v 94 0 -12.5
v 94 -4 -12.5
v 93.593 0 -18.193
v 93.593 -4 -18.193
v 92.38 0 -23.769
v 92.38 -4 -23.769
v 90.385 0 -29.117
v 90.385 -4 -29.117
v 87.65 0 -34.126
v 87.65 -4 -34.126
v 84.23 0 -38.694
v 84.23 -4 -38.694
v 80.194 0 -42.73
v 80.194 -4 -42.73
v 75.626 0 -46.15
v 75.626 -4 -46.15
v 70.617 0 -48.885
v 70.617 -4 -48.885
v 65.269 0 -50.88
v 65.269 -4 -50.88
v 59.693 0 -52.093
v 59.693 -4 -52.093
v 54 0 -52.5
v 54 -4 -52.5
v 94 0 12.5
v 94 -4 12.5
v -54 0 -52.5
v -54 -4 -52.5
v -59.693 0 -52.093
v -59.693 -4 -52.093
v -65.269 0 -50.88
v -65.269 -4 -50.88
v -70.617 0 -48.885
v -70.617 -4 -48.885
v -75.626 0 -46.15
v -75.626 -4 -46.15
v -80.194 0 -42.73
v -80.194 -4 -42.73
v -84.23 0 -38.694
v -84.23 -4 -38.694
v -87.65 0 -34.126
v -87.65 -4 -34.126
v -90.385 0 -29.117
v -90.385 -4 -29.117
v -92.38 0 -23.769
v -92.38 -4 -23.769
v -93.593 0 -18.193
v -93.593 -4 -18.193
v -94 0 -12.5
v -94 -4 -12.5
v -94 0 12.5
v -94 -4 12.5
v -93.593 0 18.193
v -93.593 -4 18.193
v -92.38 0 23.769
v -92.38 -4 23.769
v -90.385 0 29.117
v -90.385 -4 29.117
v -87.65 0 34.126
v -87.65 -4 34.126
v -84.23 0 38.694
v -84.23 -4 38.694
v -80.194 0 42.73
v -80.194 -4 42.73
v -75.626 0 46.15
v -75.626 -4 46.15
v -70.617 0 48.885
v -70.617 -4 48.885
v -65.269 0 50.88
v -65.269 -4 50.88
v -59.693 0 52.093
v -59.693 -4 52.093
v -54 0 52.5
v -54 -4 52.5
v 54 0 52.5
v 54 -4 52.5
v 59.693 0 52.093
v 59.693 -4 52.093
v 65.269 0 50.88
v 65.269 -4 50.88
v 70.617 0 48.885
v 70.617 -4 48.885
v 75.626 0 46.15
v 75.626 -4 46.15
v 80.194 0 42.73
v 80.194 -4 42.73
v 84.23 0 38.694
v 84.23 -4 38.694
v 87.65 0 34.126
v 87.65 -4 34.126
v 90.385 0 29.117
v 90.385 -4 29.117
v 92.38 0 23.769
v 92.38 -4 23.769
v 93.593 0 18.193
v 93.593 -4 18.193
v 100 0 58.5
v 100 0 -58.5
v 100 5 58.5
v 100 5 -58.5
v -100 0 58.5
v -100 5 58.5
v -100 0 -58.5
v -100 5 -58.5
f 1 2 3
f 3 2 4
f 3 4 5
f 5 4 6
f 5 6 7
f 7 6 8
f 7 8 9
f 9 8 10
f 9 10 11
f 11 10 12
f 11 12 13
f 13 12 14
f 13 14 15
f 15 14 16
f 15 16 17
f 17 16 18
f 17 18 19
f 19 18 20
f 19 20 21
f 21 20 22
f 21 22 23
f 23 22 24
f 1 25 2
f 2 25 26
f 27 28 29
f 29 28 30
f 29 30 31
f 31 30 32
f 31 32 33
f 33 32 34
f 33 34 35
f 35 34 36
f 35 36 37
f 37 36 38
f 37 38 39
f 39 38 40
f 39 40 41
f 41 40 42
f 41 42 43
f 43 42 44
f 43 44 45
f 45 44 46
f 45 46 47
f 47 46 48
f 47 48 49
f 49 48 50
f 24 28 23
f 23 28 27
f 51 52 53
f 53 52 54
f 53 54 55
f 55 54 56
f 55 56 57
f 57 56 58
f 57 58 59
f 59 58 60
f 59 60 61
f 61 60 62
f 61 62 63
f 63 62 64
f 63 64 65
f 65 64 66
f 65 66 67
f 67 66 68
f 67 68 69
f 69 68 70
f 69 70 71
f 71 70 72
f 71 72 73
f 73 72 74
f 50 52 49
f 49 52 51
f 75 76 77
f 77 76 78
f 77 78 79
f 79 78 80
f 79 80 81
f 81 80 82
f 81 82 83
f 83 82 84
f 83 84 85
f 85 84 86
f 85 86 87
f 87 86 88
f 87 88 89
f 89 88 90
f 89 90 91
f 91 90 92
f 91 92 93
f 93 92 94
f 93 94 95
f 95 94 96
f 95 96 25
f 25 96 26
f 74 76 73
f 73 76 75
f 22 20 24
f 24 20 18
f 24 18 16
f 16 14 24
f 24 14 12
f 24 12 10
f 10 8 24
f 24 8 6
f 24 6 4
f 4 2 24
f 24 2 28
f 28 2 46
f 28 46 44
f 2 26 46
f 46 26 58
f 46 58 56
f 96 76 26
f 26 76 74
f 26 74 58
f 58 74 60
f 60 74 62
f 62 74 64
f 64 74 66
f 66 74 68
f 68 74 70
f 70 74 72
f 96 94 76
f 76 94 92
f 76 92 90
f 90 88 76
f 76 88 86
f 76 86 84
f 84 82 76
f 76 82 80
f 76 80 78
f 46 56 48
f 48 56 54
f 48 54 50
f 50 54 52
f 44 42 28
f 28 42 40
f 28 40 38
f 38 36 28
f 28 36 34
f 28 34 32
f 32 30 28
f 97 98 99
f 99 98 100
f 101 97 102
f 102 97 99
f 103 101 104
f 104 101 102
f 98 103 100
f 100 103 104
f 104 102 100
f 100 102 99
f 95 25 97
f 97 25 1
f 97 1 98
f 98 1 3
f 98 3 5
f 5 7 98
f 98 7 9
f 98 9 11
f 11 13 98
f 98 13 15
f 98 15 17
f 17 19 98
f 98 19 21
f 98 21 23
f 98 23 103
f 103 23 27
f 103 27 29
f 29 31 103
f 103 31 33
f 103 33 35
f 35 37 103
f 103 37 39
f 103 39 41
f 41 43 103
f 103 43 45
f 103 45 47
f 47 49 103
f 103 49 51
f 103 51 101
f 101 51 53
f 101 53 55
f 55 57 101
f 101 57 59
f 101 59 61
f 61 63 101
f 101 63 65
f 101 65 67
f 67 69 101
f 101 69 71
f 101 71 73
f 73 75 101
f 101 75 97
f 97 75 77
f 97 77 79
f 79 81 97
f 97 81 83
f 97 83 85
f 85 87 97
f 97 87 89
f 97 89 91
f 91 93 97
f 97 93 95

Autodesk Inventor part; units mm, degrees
ref_plane "YZ Plane" through (0, 0, 0) normal (1, 0, 0) x (0, 1, 0)
ref_plane "XZ Plane" through (0, 0, 0) normal (0, 1, 0) x (-1, 0, 0)
ref_plane "XY Plane" through (0, 0, 0) normal (0, 0, 1) x (1, 0, 0)
sketch "Sketch2" plane through (0, 0, 0) normal (0, 1, 0) x (-1, 0, 0)
  line L0 (-100, 58.5) -> (-100, -58.5)
  line L1 (-100, -58.5) -> (100, -58.5)
  line L2 (100, -58.5) -> (100, 58.5)
  line L3 (100, 58.5) -> (-100, 58.5)
  point P0 (0, 0)
  point P1 (100, 0)
  dimension "d0" = 117
  dimension "d1" = 200
  dimension "d2" = 58.5
  dimension "d3" = 100
extrude "Extrusion1" add sketch "Sketch2" along normal blind 5
sketch "Sketch3" plane through (0, 0, 0) normal (0, -1, 0) x (1, 0, 0)
  line L0 (94, -52.5) -> (-94, -52.5)
  line L1 (-94, -52.5) -> (-94, 52.5)
  line L2 (-94, 52.5) -> (94, 52.5)
  line L3 (94, 52.5) -> (94, -52.5)
  line L4 (100, -58.5) -> (-100, -58.5) projected
  line L5 (-100, 58.5) -> (100, 58.5) projected
  line L6 (-100, -58.5) -> (-100, 58.5) projected
  line L7 (100, 58.5) -> (100, -58.5) projected
  point P0 (0, 0)
  dimension "d6" = 6
  dimension "d7" = 6
  dimension "d8" = 6
  dimension "d9" = 6
extrude "Extrusion2" add sketch "Sketch3" along normal blind 4 contours L0 L1 L2 L3
fillet "Fillet1" radius 40 4 edges at (94, -2, 52.5) (-94, -2, 52.5) (-94, -2, -52.5) (94, -2, -52.5)
properties part number "clip-cover"
